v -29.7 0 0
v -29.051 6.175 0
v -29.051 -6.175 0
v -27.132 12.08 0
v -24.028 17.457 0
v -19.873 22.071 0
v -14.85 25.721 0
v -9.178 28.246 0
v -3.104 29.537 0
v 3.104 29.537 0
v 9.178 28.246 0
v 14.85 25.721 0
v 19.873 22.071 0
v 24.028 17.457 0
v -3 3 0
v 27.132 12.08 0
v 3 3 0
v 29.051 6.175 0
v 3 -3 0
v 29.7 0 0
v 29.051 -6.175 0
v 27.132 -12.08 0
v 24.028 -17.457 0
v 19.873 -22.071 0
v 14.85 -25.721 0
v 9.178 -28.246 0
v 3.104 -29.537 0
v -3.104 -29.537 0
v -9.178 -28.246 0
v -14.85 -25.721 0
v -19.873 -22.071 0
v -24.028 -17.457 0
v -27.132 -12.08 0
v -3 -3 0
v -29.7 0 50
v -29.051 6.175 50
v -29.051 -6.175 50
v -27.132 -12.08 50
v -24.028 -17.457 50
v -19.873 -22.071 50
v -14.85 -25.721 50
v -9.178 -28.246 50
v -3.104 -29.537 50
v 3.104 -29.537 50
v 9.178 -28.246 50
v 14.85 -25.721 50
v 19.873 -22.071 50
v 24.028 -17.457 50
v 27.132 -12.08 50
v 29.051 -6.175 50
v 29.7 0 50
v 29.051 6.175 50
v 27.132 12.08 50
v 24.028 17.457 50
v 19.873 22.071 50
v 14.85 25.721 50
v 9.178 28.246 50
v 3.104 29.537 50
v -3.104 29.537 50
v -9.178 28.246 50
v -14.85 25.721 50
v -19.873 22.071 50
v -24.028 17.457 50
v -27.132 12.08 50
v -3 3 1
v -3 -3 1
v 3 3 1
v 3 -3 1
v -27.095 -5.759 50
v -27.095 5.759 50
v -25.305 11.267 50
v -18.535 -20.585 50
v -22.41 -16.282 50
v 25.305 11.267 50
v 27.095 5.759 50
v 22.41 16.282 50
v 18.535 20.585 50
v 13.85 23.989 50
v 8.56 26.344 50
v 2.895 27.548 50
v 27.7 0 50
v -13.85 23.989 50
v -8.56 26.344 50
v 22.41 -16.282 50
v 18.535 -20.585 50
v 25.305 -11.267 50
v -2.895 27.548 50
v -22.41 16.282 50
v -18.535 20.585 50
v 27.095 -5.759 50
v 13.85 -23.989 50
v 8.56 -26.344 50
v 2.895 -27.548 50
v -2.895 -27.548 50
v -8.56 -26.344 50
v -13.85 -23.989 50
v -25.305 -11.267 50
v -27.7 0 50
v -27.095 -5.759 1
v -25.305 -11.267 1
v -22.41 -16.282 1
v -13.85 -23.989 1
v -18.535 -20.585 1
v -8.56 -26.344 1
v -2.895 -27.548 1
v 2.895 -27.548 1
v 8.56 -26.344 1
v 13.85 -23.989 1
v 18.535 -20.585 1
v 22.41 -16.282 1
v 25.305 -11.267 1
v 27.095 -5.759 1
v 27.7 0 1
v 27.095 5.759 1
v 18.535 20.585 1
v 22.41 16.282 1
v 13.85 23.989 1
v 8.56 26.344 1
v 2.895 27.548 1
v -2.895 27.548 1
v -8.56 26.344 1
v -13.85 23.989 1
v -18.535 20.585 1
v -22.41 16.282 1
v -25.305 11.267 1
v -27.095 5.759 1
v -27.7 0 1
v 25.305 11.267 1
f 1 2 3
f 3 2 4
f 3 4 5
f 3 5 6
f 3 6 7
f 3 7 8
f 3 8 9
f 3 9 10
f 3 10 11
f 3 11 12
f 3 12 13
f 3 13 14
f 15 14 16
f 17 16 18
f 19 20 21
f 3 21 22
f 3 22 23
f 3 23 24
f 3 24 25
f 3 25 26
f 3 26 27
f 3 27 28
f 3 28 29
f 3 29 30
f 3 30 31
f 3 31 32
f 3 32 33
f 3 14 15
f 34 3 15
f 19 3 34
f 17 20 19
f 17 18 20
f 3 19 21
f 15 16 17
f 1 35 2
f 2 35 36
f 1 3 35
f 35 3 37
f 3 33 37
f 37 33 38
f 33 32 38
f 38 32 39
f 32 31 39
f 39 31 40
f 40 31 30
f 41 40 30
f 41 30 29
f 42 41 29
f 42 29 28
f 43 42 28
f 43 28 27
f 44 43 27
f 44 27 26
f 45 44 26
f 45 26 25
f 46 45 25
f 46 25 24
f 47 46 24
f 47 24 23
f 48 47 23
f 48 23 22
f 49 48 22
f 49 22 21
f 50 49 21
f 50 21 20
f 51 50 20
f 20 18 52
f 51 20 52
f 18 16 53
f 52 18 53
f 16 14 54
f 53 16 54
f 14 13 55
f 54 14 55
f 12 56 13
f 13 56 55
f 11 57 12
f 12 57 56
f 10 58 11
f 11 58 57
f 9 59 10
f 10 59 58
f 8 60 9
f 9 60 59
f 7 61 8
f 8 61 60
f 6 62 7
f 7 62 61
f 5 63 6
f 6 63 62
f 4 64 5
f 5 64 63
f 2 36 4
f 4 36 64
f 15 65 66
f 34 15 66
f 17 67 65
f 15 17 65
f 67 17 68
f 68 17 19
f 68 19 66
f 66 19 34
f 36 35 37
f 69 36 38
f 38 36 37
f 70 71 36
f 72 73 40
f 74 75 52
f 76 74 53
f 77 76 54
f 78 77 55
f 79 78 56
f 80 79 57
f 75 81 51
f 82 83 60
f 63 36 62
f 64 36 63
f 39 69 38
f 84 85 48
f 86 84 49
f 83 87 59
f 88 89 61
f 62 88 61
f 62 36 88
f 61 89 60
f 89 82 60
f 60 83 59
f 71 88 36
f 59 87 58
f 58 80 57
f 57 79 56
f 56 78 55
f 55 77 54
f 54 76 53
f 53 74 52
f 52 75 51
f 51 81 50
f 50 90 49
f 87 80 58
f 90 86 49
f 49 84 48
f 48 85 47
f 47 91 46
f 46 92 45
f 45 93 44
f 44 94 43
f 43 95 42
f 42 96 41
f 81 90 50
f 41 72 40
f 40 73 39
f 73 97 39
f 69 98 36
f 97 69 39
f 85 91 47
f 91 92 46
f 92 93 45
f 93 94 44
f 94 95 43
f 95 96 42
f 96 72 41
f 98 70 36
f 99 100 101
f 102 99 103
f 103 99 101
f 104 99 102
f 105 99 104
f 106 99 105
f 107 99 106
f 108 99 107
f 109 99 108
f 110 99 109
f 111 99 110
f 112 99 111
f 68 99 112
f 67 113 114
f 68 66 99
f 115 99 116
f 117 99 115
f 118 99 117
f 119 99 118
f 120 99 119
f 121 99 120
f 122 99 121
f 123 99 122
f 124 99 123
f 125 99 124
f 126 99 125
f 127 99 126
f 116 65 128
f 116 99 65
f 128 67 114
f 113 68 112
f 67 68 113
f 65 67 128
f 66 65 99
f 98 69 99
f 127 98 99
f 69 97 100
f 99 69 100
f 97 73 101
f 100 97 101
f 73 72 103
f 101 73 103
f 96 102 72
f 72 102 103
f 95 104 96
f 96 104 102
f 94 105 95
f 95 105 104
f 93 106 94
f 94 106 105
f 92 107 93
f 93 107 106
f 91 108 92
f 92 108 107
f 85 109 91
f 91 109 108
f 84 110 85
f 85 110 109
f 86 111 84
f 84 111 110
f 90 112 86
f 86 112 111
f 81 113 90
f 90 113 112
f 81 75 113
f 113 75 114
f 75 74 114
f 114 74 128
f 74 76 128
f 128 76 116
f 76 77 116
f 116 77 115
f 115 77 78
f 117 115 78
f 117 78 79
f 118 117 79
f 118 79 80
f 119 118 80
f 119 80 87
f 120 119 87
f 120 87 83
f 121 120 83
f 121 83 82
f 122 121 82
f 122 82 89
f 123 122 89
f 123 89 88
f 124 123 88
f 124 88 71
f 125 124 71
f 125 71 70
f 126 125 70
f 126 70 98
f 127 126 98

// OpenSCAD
// file: SoporteLenteYCaja.scad
include <Camara.scad>

//lupa
lupaW = 54.4+6;

//bc=Base de cámara
bcW = lupaW+10;
bcH = lupaW+5;
bcD = 6;

//rb=Raspberry atrás
rbW=87 + 6;
rbH=25;
rbD=bcD;
rbPared = 2;

rbConnW = 60;
rbConnH = 19;

//brt=base rosca tubo
brtPared = 4;

cableW = 20;



//createSoporteLenYCaj();


module createSoporteLenYCaj(){

createBaseDelantera();


//Separation
translate([0,0,2.5])
difference(){
cylinder(r=lupaW/2,1.5);

translate([0,0,-0.2])
cylinder(r=((lupaW/2)-1.3),rbD+2);
}
}



module createBaseDelantera(){


difference(){
createBaseAdelante();

//Rosca de tubo
translate([0,0,-0.2
])
cylinder(r=lupaW/2,15);


//Tornillos de la caja
translate([-rbW/2-5,(-bcW/2)-rbH/2.5,4])
rotate([0,90,0])
cylinder(r=1,10);

translate([rbW/2-5,(-bcW/2)-rbH/2.5,4])
rotate([0,90,0])
cylinder(r=1,10);	

translate([rbW/2-7,(-bcW/2)+5,4])
rotate([90,0,0])
cylinder(r=1,30);

translate([-rbW/2+7,(-bcW/2)+5,4])
rotate([90,0,0])
cylinder(r=1,30);

translate([0,(-bcW/2)-(rbH/2),4])
rotate([90,0,0])
cylinder(r=1,15);

//Área de raspberry
translate([-rbW/2+rbPared,-bcH+(rbH/2)-rbPared,rbPared])
cube([rbW-(rbPared*2),rbH-(rbPared*2),10]);

}

}



	



module createBaseAdelante(){

//Caja rasp atrás
translate([-rbW/2,(-bcH/2)-rbH+0.1,0])
cube([rbW,rbH,rbD]);

//Portacamara
translate([-bcW/2,-bcH/2,0])
cube([bcW,bcH,bcD]);

}
// file: Camara.scad
camW = 25.2;
camH = 25.4;
camD = 1;

camTW = 2;

lenW = 8.2;
lenH = 8.2;
lenD = 5.5;


//createCamara();

module createCamara(){

difference(){

//Tableta
cube([camW,camH,camD]);


createCamTornillos();


}

//lente
translate([(camW/2)-lenW/2,10-lenW/2,camD-0.1])
cube([lenW+0.1,lenH,lenD]);

//Cable
cableD = 3;
translate([0,0,-cableD+0.1])
cube([camW,6,cableD]);



}


module createCamTornillos(){

//Tornillos
translate([1.9,10,-1])
cylinder(r=camTW/2,5);
translate([1.9+21.4,10,-1])
cylinder(r=camTW/2,5);

translate([1.9,10+13.5,-1])
cylinder(r=camTW/2,5);
translate([1.9+21.4,10+13.5,-1])
cylinder(r=camTW/2,5);

}
// main file
include <Camara.scad>
include <SoporteLenteYCaja.scad>


tuboH = 50;

tuboRadio = (lupaW-1)/2;


//Tubo
difference(){

cylinder(r=tuboRadio,tuboH);

translate([0,0,1
])
cylinder(r=(tuboRadio)-rbPared,tuboH+2);

//Apertura
translate([-3,-3,-0.1])
cube([6,6,6]);

}
